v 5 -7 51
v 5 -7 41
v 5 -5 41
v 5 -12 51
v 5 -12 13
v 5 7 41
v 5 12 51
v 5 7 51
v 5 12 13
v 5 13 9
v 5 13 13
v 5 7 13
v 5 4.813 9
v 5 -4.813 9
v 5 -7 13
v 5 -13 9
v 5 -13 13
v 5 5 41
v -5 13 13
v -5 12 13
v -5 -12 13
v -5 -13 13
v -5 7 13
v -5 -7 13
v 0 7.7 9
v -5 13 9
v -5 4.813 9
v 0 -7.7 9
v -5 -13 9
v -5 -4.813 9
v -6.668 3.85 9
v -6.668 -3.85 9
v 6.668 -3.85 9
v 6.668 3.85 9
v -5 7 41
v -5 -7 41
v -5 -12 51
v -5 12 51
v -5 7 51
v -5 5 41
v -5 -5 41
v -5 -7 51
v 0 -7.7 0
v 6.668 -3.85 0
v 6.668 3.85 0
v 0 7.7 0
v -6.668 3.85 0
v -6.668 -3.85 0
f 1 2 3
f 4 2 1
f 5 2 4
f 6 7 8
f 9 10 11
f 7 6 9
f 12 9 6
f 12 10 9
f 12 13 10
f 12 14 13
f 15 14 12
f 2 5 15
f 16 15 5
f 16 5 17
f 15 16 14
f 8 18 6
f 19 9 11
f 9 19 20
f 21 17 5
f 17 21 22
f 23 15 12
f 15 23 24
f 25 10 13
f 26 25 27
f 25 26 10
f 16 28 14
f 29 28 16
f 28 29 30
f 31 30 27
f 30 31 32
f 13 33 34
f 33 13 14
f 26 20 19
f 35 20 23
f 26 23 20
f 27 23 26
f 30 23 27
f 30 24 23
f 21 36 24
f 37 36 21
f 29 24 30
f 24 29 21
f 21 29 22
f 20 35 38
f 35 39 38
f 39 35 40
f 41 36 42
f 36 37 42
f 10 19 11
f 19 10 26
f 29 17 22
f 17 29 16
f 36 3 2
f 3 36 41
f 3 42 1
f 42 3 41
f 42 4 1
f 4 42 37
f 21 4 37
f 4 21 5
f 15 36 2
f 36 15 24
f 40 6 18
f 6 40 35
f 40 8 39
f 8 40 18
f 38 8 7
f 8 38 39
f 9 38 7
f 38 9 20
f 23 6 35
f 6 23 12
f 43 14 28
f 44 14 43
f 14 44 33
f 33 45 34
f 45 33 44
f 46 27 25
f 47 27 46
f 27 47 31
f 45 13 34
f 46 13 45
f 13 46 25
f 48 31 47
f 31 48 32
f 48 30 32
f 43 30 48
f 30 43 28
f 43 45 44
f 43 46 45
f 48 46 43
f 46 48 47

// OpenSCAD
length_inner = 9;
length_total = length_inner;
inner_diametr = 15.4;

wire_offset = 6;


translate([0,0,4/2+length_total])
  cube([10,26,4], center=true);
 
    
translate([0,-12,4/2+length_total])
rotate([90,0,90]) {
  linear_extrude(10, center=true) {
    polygon([[0,0], [0,40], [5,40], [7, 30], [5, 30], [5,0]]);
  } 
}

translate([0,12,4/2+length_total])
rotate([90,0,-90]) {
  linear_extrude(10, center=true) {
    polygon([[0,0], [0,40], [5,40], [7, 30], [5, 30], [5,0]]);
  } 
}

deep_offset = -3;

translate([0,0,length_total/2]) {
    rotate([0,0,30]) {
  cylinder(r=inner_diametr/2, h=length_total, center=true, $fn=6);
    }
}


//cube([15,9,20], center=true);
